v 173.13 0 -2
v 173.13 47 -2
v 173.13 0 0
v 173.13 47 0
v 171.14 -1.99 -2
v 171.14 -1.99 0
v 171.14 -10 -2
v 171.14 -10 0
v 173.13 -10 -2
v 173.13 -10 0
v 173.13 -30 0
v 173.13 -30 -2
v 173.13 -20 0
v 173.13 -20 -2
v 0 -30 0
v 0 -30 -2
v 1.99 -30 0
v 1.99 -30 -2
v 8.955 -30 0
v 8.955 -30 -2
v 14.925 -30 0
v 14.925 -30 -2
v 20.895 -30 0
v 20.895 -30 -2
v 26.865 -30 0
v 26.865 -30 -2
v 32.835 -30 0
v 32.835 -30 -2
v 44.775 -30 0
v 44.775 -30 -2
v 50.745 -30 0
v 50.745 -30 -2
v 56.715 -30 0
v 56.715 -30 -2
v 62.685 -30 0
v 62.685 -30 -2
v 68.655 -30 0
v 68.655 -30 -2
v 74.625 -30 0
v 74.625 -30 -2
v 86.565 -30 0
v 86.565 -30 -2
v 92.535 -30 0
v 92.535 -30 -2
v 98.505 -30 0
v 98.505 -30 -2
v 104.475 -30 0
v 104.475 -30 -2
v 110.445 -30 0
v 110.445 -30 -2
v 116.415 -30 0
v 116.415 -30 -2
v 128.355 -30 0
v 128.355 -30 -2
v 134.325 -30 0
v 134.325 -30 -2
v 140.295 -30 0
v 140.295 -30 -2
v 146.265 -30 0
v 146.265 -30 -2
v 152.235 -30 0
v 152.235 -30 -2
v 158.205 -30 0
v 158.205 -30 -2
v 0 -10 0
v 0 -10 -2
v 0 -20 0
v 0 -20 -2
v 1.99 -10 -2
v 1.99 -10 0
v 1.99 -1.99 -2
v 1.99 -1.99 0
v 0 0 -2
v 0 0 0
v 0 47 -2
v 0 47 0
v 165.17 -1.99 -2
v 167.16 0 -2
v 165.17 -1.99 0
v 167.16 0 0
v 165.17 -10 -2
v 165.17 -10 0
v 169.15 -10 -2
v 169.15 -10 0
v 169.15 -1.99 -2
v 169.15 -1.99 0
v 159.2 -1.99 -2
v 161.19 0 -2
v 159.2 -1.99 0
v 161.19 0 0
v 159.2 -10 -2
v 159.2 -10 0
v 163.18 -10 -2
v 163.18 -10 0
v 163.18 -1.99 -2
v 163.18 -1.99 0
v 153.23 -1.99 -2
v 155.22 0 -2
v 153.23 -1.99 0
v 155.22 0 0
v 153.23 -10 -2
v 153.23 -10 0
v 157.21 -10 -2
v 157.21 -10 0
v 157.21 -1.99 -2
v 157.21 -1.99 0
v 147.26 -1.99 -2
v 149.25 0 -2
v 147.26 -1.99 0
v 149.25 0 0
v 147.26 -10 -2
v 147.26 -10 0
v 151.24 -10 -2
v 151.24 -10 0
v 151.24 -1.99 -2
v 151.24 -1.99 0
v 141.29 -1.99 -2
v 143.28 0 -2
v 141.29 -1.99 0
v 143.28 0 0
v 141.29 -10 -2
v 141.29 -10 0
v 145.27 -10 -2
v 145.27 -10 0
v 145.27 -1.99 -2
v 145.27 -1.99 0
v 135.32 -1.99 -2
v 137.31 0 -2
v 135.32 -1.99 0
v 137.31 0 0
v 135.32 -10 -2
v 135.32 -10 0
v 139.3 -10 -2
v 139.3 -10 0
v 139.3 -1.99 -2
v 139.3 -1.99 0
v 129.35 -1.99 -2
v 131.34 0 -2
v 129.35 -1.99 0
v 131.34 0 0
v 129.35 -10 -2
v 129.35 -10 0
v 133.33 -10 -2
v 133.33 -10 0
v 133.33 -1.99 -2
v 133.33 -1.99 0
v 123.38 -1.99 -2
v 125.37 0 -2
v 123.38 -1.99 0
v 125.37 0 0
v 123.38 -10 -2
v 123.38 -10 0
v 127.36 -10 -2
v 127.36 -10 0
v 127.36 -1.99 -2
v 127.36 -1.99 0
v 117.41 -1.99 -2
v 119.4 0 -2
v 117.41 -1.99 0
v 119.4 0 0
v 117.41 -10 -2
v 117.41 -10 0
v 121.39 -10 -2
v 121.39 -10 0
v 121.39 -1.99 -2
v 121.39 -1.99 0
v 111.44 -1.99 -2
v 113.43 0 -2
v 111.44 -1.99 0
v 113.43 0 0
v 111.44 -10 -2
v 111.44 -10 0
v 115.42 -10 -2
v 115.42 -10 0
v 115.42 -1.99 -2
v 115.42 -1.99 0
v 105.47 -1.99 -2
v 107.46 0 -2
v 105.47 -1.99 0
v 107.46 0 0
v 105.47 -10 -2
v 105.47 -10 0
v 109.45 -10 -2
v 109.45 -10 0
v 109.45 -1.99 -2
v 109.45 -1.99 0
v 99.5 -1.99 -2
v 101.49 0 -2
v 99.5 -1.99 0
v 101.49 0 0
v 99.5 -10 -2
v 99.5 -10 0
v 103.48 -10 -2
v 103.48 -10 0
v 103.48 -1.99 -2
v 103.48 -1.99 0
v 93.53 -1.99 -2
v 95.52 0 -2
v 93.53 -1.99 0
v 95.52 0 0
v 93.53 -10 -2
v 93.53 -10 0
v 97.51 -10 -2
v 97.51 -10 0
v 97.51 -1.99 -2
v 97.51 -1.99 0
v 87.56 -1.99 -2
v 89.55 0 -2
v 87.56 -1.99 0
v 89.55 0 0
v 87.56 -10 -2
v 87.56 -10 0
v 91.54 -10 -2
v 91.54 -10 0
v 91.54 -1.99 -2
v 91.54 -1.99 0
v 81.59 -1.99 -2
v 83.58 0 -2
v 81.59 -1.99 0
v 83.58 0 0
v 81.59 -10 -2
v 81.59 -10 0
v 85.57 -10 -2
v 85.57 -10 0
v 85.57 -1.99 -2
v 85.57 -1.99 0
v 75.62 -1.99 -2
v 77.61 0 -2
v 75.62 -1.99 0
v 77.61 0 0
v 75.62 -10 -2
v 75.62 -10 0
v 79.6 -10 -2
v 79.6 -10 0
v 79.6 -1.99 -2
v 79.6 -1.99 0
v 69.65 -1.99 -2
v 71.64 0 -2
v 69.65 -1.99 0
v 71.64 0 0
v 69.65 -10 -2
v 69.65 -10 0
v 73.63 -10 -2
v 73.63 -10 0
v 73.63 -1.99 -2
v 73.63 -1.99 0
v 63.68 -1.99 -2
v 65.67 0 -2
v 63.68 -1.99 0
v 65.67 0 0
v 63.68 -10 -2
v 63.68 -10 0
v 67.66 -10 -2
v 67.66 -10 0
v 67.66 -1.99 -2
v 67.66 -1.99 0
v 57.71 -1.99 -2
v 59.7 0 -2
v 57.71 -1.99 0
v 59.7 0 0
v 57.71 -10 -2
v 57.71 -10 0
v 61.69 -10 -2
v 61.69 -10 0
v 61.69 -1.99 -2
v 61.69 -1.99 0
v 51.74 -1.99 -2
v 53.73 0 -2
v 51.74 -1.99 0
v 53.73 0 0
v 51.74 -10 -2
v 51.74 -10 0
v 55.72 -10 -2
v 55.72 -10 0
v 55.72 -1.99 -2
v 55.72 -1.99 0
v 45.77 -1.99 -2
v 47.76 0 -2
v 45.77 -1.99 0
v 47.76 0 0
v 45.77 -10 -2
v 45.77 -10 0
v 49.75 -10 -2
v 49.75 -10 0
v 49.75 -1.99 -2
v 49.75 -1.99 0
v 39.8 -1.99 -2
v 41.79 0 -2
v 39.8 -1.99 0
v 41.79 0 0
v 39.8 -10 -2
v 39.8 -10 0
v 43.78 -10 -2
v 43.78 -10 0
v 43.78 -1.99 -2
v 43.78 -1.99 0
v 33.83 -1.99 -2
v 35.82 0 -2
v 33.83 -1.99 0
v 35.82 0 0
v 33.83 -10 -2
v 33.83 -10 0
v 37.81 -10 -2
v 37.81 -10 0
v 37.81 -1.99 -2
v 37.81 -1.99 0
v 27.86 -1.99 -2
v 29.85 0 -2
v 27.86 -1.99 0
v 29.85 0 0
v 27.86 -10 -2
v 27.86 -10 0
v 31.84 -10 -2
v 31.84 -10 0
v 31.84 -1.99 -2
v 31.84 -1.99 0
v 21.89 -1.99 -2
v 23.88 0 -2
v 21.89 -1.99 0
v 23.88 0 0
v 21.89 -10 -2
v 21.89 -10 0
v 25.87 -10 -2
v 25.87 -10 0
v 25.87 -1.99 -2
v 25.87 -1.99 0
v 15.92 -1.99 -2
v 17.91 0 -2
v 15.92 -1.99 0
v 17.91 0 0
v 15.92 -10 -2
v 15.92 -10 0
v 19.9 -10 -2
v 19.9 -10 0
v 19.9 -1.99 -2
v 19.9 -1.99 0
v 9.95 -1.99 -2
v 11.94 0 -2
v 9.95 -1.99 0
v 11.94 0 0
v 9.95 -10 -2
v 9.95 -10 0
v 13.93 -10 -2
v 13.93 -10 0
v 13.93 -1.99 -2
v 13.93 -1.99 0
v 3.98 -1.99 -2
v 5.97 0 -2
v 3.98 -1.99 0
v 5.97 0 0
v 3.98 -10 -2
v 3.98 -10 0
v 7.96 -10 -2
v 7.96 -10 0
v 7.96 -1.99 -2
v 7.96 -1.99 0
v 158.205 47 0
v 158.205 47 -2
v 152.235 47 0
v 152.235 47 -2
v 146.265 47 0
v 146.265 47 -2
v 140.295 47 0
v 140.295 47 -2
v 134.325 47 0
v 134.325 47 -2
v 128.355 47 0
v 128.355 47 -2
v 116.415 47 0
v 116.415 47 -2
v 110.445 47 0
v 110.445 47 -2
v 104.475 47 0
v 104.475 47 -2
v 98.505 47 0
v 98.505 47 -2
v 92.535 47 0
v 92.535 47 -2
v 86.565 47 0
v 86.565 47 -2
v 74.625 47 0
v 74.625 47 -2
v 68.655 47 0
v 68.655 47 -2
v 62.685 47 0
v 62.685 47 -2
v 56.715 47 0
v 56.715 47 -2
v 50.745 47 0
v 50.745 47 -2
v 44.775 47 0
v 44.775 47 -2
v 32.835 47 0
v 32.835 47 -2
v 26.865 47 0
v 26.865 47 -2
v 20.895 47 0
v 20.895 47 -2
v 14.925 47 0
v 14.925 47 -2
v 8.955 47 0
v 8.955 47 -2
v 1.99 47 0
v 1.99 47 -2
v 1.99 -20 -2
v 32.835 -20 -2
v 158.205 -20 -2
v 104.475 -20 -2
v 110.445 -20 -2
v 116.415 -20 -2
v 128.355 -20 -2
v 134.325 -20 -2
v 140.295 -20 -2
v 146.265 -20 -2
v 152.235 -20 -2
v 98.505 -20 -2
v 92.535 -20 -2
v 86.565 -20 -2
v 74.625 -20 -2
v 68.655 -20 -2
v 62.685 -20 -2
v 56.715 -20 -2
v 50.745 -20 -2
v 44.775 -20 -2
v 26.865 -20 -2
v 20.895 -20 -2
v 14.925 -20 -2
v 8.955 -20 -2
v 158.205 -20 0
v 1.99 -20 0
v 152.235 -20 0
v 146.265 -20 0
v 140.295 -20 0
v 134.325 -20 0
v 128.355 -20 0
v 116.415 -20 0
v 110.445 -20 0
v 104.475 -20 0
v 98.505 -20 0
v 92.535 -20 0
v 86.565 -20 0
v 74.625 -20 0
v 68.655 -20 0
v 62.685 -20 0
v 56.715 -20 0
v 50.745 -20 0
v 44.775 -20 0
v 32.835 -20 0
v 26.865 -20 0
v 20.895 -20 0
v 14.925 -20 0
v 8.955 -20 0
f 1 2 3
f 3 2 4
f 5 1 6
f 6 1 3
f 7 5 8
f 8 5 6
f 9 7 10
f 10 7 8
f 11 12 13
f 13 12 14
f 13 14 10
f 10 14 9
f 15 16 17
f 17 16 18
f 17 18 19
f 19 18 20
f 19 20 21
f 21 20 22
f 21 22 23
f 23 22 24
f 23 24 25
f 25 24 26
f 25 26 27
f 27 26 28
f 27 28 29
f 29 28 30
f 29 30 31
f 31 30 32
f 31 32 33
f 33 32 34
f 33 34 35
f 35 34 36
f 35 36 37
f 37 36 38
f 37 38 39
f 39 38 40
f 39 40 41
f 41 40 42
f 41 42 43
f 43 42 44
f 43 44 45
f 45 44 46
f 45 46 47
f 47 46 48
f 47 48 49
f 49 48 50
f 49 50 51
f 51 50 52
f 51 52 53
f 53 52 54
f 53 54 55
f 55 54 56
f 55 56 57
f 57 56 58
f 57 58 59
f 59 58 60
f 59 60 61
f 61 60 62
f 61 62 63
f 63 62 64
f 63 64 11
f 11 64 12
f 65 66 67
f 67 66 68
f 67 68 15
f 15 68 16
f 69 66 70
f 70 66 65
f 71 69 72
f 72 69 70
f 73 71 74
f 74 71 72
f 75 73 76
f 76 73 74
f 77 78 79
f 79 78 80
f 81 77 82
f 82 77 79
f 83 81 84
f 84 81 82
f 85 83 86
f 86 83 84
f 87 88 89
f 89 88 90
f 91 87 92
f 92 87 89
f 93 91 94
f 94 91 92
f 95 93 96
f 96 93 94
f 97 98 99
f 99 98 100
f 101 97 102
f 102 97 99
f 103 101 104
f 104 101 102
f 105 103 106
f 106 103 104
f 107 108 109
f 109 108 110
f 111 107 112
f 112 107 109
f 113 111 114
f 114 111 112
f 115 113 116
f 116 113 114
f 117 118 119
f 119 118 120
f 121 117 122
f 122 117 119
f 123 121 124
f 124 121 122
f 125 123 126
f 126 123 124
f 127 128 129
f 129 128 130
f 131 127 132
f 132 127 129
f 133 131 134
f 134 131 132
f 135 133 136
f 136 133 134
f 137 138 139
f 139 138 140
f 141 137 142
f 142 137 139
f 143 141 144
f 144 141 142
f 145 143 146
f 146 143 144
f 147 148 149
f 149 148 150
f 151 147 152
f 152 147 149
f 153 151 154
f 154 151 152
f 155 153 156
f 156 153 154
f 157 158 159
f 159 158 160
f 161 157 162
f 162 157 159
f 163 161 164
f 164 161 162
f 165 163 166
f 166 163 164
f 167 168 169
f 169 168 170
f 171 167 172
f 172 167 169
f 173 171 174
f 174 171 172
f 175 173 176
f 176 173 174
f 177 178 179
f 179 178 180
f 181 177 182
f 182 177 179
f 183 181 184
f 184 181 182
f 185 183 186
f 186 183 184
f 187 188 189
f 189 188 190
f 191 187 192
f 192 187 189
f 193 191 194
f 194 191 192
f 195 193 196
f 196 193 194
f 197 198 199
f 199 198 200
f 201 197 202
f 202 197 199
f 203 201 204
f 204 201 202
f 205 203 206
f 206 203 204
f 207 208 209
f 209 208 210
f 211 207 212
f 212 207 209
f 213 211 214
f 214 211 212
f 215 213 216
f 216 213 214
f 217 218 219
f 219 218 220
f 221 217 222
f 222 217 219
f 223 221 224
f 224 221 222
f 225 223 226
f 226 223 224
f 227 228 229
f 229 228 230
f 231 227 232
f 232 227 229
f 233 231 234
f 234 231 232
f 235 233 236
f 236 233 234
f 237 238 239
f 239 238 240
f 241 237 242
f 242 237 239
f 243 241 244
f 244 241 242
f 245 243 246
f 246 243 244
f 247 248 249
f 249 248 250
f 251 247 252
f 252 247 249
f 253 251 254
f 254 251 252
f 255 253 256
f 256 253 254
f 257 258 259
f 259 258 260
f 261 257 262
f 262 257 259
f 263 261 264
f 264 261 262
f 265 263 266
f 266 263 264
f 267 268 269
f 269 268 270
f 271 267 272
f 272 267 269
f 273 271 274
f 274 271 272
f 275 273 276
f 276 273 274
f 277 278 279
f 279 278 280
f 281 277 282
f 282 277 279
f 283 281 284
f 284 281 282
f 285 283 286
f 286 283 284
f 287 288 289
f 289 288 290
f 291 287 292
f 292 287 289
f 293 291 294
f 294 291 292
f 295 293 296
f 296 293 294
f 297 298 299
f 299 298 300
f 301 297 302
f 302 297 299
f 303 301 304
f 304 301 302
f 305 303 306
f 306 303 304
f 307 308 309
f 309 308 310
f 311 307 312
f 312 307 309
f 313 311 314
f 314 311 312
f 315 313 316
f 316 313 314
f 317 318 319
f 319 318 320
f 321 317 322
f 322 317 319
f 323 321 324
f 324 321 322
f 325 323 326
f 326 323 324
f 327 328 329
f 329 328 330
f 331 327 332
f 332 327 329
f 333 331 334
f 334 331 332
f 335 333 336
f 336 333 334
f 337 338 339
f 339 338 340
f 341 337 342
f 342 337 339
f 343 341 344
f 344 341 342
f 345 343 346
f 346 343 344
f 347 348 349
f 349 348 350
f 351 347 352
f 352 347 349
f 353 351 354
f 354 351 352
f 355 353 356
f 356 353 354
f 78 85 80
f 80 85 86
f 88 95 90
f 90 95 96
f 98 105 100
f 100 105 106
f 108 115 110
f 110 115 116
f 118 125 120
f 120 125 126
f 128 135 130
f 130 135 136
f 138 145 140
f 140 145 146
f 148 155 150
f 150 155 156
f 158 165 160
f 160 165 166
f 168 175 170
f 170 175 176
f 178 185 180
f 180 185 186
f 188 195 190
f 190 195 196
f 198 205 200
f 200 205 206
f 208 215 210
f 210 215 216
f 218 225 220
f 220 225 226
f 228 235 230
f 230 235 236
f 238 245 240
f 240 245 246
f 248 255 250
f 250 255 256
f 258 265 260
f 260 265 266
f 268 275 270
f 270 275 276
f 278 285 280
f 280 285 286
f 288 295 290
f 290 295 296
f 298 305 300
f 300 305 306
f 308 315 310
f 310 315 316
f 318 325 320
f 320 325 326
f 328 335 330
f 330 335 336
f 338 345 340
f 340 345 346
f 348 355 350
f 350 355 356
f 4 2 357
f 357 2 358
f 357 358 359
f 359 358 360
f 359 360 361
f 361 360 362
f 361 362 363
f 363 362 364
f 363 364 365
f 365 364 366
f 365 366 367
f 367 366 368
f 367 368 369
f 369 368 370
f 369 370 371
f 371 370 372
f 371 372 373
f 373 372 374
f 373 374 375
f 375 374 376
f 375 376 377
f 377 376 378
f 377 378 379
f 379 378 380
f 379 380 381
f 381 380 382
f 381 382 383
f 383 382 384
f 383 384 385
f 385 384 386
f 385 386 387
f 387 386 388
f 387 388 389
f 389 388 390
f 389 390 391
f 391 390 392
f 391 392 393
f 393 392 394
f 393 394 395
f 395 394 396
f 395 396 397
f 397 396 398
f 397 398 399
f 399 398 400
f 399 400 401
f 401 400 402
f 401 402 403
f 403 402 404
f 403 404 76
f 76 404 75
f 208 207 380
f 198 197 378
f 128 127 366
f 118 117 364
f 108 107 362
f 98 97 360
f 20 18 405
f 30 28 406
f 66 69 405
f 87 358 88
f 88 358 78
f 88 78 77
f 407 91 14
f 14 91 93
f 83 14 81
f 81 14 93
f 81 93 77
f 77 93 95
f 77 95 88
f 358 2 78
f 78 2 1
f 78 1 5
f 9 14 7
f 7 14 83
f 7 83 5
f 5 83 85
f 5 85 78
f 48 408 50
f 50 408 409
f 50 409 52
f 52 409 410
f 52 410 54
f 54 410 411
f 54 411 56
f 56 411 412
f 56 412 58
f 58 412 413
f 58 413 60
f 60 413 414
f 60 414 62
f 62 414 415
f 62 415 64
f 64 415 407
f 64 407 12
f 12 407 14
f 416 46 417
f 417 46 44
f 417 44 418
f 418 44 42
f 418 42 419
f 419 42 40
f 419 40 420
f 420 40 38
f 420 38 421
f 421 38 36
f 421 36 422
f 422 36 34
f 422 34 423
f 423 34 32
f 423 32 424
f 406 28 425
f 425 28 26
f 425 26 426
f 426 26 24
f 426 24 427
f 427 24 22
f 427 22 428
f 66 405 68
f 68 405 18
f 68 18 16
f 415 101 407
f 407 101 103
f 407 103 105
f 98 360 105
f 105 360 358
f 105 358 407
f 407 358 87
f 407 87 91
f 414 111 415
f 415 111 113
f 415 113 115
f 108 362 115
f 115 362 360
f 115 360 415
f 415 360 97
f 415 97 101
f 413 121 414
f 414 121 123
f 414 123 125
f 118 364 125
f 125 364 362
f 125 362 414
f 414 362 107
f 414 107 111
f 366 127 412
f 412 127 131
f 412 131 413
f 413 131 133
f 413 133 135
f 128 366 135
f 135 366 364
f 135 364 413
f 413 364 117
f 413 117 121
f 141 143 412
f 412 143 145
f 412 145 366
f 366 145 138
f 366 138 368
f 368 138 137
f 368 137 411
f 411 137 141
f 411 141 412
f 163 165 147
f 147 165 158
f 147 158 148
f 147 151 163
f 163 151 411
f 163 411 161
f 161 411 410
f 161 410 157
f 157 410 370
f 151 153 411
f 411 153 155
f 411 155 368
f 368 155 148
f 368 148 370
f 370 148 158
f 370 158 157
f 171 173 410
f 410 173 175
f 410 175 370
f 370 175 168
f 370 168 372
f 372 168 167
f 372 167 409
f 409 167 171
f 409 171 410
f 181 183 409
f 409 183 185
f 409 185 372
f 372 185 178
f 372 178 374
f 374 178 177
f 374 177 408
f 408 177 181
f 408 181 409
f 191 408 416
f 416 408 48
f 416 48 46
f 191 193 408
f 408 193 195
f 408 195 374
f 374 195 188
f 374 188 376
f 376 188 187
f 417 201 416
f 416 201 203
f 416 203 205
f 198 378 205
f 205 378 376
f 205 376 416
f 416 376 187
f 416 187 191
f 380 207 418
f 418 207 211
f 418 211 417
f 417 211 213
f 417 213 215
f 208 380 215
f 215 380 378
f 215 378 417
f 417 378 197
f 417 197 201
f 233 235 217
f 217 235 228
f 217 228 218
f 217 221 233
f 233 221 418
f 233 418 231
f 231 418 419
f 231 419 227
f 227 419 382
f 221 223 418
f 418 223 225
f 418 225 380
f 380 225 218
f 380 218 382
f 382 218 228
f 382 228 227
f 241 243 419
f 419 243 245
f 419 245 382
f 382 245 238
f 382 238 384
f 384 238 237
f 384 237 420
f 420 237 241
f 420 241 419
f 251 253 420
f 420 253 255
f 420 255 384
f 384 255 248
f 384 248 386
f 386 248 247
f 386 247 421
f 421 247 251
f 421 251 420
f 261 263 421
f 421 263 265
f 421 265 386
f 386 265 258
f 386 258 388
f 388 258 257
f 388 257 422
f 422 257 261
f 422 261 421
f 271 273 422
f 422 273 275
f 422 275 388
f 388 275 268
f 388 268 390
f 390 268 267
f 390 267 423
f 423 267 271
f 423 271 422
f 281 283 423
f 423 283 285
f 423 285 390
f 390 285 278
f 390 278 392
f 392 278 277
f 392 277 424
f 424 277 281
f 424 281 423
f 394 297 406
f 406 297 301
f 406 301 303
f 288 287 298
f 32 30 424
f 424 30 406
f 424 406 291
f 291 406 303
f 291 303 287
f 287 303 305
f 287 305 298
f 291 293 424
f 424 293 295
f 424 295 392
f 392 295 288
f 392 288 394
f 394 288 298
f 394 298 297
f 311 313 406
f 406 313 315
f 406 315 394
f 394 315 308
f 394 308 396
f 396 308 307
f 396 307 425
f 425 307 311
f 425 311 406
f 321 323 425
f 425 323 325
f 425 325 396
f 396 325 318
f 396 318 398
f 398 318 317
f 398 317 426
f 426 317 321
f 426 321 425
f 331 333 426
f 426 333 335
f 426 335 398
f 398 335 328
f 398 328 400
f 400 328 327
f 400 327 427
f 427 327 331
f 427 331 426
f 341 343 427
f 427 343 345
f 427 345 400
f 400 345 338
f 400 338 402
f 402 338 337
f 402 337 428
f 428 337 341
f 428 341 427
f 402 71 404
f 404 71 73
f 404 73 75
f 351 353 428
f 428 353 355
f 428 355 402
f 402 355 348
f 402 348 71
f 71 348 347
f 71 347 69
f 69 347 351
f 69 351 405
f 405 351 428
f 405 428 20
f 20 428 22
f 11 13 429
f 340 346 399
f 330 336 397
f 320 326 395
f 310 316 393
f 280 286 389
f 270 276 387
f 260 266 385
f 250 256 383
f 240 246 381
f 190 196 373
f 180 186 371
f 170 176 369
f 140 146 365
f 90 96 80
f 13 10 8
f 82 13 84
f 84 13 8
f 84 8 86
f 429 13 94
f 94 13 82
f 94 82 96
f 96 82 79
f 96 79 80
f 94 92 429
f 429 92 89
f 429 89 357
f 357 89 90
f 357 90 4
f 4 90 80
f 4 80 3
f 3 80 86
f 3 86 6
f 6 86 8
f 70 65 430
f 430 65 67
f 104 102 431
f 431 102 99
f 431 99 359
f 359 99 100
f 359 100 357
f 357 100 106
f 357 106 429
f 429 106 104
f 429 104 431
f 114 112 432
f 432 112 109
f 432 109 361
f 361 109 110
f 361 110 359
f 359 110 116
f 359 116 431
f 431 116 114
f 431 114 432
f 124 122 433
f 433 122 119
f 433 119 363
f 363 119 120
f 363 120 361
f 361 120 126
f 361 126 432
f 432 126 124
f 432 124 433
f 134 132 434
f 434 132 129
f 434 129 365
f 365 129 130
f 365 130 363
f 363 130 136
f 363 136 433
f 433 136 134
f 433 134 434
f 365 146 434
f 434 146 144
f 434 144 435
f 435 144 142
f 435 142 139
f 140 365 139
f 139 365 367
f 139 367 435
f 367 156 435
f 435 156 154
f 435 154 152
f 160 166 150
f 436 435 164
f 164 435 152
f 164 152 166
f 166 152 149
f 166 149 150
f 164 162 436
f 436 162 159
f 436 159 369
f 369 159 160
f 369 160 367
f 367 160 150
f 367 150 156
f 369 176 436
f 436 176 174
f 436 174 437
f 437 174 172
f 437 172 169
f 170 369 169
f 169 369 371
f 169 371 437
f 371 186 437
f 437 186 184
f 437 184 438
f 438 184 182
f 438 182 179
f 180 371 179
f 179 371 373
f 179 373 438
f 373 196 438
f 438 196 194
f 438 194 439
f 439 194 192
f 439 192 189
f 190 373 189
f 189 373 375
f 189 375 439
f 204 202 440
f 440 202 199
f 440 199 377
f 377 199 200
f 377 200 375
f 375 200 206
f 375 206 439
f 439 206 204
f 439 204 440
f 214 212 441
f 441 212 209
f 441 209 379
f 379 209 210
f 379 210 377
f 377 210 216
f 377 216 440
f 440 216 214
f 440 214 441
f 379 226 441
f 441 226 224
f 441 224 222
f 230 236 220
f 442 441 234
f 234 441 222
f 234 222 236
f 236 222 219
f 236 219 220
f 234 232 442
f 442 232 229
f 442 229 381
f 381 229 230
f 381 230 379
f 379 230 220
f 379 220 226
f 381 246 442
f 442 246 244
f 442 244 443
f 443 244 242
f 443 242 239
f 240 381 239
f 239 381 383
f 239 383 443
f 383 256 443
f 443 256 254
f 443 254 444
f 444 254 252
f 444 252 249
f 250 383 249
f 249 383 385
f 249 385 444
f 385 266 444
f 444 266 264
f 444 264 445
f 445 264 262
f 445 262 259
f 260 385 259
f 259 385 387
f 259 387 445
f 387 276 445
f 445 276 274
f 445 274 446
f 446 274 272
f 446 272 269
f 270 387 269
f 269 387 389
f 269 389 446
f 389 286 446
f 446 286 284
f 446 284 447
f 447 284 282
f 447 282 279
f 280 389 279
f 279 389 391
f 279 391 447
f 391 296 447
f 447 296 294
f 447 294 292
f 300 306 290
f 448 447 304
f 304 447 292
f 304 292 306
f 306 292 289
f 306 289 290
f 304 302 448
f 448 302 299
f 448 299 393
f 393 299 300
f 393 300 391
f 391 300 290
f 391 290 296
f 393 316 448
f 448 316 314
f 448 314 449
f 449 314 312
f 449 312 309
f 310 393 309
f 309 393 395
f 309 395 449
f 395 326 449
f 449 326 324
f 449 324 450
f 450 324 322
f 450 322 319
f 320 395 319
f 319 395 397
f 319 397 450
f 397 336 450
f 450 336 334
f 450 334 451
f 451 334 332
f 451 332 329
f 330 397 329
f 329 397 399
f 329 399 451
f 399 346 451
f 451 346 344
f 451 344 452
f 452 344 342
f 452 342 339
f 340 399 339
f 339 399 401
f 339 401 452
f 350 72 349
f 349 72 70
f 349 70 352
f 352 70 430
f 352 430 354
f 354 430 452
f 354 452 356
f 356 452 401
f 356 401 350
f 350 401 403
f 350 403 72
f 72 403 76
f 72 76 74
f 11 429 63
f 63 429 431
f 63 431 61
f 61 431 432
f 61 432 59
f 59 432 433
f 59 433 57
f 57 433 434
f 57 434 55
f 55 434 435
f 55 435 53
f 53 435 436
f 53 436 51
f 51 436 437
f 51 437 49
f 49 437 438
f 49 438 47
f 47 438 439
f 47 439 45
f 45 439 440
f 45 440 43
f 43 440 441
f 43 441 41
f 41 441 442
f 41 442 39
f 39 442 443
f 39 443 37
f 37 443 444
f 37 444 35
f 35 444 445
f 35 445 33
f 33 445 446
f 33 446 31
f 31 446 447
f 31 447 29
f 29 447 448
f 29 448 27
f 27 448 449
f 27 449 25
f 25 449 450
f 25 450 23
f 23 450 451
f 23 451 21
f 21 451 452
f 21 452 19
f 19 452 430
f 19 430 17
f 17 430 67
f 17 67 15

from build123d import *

# Parameters (mm, degrees)
BOSS_EXTRUDE1_DEPTH = 2


with BuildPart() as part:
    # Sketch1 → Boss-Extrude1 (new body)
    with BuildSketch(Plane(origin=(0, 0, 0), x_dir=(1, 0, 0), z_dir=(0, 0, -1))):
        Polygon((1.99, 1.99), (0, 0), (0, -47), (173.13, -47), (173.13, 0), (171.14, 1.99), (171.14, 10), (173.13, 10), (173.13, 30), (0, 30), (0, 10), (1.99, 10), align=None)
        Polygon((7.96, 1.99), (5.97, 0), (3.98, 1.99), (3.98, 10), (7.96, 10), align=None, mode=Mode.SUBTRACT)
        Polygon((13.93, 1.99), (11.94, 0), (9.95, 1.99), (9.95, 10), (13.93, 10), align=None, mode=Mode.SUBTRACT)
        Polygon((19.9, 1.99), (17.91, 0), (15.92, 1.99), (15.92, 10), (19.9, 10), align=None, mode=Mode.SUBTRACT)
        Polygon((25.87, 1.99), (23.88, 0), (21.89, 1.99), (21.89, 10), (25.87, 10), align=None, mode=Mode.SUBTRACT)
        Polygon((31.84, 1.99), (29.85, 0), (27.86, 1.99), (27.86, 10), (31.84, 10), align=None, mode=Mode.SUBTRACT)
        Polygon((37.81, 1.99), (35.82, 0), (33.83, 1.99), (33.83, 10), (37.81, 10), align=None, mode=Mode.SUBTRACT)
        Polygon((43.78, 1.99), (41.79, 0), (39.8, 1.99), (39.8, 10), (43.78, 10), align=None, mode=Mode.SUBTRACT)
        Polygon((49.75, 1.99), (47.76, 0), (45.77, 1.99), (45.77, 10), (49.75, 10), align=None, mode=Mode.SUBTRACT)
        Polygon((55.72, 1.99), (53.73, 0), (51.74, 1.99), (51.74, 10), (55.72, 10), align=None, mode=Mode.SUBTRACT)
        Polygon((61.69, 1.99), (59.7, 0), (57.71, 1.99), (57.71, 10), (61.69, 10), align=None, mode=Mode.SUBTRACT)
        Polygon((67.66, 1.99), (65.67, 0), (63.68, 1.99), (63.68, 10), (67.66, 10), align=None, mode=Mode.SUBTRACT)
        Polygon((73.63, 1.99), (71.64, 0), (69.65, 1.99), (69.65, 10), (73.63, 10), align=None, mode=Mode.SUBTRACT)
        Polygon((79.6, 1.99), (77.61, 0), (75.62, 1.99), (75.62, 10), (79.6, 10), align=None, mode=Mode.SUBTRACT)
        Polygon((85.57, 1.99), (83.58, 0), (81.59, 1.99), (81.59, 10), (85.57, 10), align=None, mode=Mode.SUBTRACT)
        Polygon((91.54, 1.99), (89.55, 0), (87.56, 1.99), (87.56, 10), (91.54, 10), align=None, mode=Mode.SUBTRACT)
        Polygon((97.51, 1.99), (95.52, 0), (93.53, 1.99), (93.53, 10), (97.51, 10), align=None, mode=Mode.SUBTRACT)
        Polygon((103.48, 1.99), (101.49, 0), (99.5, 1.99), (99.5, 10), (103.48, 10), align=None, mode=Mode.SUBTRACT)
        Polygon((109.45, 1.99), (107.46, 0), (105.47, 1.99), (105.47, 10), (109.45, 10), align=None, mode=Mode.SUBTRACT)
        Polygon((115.42, 1.99), (113.43, 0), (111.44, 1.99), (111.44, 10), (115.42, 10), align=None, mode=Mode.SUBTRACT)
        Polygon((121.39, 1.99), (119.4, 0), (117.41, 1.99), (117.41, 10), (121.39, 10), align=None, mode=Mode.SUBTRACT)
        Polygon((127.36, 1.99), (125.37, 0), (123.38, 1.99), (123.38, 10), (127.36, 10), align=None, mode=Mode.SUBTRACT)
        Polygon((133.33, 1.99), (131.34, 0), (129.35, 1.99), (129.35, 10), (133.33, 10), align=None, mode=Mode.SUBTRACT)
        Polygon((139.3, 1.99), (137.31, 0), (135.32, 1.99), (135.32, 10), (139.3, 10), align=None, mode=Mode.SUBTRACT)
        Polygon((145.27, 1.99), (143.28, 0), (141.29, 1.99), (141.29, 10), (145.27, 10), align=None, mode=Mode.SUBTRACT)
        Polygon((151.24, 1.99), (149.25, 0), (147.26, 1.99), (147.26, 10), (151.24, 10), align=None, mode=Mode.SUBTRACT)
        Polygon((157.21, 1.99), (155.22, 0), (153.23, 1.99), (153.23, 10), (157.21, 10), align=None, mode=Mode.SUBTRACT)
        Polygon((163.18, 1.99), (161.19, 0), (159.2, 1.99), (159.2, 10), (163.18, 10), align=None, mode=Mode.SUBTRACT)
        Polygon((169.15, 1.99), (167.16, 0), (165.17, 1.99), (165.17, 10), (169.15, 10), align=None, mode=Mode.SUBTRACT)
    extrude(amount=BOSS_EXTRUDE1_DEPTH)


solid = part.part
